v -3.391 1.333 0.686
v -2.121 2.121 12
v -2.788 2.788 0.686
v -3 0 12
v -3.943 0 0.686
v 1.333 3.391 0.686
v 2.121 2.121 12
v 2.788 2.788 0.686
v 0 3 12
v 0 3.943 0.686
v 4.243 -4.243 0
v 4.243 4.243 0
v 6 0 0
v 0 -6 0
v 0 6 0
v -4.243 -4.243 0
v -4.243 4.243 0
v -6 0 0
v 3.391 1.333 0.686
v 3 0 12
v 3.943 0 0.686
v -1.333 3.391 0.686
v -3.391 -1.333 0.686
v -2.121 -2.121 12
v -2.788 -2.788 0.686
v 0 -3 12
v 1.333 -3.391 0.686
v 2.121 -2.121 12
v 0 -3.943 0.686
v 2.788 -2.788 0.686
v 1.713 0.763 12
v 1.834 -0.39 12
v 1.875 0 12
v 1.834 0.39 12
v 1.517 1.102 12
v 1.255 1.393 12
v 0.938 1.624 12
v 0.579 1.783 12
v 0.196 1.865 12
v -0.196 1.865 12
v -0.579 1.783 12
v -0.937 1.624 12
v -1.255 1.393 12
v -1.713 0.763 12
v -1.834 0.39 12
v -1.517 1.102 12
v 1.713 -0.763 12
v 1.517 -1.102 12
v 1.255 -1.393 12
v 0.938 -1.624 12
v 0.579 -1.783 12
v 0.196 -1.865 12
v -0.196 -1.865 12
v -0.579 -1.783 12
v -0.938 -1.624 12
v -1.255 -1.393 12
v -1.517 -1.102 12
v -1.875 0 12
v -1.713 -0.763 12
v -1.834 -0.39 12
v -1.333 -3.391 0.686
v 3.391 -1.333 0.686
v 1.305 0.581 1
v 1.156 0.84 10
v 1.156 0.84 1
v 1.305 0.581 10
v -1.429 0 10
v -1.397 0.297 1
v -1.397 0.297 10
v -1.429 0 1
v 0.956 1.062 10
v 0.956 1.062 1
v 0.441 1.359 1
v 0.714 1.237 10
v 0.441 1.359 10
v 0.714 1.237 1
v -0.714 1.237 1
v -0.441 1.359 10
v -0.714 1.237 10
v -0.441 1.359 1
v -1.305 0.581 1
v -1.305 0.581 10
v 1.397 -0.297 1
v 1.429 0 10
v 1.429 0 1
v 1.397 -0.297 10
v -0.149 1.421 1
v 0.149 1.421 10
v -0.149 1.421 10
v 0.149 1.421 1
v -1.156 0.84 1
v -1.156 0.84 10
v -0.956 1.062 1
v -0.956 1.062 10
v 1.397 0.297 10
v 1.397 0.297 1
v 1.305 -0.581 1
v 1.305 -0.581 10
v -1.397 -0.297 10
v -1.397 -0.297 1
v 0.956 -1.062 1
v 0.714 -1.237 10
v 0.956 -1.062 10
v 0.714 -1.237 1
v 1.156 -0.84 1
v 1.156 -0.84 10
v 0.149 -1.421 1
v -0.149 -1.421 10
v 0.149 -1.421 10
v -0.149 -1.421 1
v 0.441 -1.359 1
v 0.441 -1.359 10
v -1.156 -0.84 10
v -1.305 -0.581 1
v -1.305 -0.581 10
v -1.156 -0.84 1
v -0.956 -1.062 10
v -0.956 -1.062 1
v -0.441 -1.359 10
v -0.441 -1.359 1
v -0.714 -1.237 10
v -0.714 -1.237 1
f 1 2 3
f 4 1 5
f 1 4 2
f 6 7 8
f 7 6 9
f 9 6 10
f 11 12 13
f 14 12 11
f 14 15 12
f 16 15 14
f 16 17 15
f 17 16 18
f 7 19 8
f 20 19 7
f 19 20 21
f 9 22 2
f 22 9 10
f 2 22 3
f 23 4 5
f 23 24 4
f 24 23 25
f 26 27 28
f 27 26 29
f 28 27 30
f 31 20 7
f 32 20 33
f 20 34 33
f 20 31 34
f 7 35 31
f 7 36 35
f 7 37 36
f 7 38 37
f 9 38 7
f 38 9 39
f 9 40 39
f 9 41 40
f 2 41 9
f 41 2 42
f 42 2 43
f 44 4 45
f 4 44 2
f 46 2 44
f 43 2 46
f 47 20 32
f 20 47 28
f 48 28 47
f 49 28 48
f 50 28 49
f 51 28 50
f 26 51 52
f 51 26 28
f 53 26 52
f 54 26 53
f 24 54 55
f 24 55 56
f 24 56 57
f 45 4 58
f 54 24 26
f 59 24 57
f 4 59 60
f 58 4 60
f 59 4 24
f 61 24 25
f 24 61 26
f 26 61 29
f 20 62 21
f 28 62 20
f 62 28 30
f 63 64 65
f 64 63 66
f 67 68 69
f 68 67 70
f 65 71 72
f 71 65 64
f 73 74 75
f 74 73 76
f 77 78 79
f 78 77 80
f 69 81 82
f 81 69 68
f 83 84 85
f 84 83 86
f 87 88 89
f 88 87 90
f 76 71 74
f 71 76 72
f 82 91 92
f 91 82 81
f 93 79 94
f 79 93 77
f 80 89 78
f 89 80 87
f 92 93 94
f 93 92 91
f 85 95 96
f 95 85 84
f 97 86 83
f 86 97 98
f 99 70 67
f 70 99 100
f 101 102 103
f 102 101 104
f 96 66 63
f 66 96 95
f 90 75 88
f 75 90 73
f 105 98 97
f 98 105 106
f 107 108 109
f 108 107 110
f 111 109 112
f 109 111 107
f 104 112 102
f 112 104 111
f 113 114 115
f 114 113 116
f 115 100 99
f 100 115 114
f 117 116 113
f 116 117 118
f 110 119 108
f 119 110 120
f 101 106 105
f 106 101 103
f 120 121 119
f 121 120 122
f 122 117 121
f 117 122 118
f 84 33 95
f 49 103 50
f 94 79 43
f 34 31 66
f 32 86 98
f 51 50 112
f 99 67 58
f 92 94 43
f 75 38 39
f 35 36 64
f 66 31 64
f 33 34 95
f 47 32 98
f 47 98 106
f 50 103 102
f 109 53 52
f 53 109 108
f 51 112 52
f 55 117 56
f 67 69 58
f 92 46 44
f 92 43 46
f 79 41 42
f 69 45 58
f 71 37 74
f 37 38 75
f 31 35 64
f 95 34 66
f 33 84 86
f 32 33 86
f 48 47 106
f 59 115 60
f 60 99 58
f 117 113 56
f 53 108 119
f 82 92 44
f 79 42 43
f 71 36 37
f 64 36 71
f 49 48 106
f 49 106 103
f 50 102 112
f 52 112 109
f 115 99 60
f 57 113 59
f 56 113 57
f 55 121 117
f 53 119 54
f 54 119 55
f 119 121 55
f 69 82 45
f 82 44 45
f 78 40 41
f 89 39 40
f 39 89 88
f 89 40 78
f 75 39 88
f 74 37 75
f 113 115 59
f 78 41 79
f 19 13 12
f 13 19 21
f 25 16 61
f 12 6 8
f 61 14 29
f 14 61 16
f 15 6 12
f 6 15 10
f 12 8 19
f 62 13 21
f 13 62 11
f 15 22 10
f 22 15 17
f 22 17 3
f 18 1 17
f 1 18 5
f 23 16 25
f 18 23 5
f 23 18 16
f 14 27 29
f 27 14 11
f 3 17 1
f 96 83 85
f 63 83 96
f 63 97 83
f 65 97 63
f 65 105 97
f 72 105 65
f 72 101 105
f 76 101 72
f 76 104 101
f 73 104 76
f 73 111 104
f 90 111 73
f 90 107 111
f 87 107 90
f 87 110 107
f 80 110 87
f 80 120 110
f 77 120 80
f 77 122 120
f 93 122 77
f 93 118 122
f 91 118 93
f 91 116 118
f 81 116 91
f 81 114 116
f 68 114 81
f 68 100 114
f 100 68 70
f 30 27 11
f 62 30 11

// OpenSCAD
h=12; //Hauteur de l'entretoise
d=3; //Diamètre vis

difference() {
    cylinder(r1=d+1,r2=d,h,$fn=8);
   cylinder(r=d/2.1,h,$fn=30);
    translate([0,0,h-2])cylinder(r1=d/2.1,r2=d/1.6,h=2,$fn=30);
}
    cylinder(r1=d+3,r2=d,h=1,$fn=8);
